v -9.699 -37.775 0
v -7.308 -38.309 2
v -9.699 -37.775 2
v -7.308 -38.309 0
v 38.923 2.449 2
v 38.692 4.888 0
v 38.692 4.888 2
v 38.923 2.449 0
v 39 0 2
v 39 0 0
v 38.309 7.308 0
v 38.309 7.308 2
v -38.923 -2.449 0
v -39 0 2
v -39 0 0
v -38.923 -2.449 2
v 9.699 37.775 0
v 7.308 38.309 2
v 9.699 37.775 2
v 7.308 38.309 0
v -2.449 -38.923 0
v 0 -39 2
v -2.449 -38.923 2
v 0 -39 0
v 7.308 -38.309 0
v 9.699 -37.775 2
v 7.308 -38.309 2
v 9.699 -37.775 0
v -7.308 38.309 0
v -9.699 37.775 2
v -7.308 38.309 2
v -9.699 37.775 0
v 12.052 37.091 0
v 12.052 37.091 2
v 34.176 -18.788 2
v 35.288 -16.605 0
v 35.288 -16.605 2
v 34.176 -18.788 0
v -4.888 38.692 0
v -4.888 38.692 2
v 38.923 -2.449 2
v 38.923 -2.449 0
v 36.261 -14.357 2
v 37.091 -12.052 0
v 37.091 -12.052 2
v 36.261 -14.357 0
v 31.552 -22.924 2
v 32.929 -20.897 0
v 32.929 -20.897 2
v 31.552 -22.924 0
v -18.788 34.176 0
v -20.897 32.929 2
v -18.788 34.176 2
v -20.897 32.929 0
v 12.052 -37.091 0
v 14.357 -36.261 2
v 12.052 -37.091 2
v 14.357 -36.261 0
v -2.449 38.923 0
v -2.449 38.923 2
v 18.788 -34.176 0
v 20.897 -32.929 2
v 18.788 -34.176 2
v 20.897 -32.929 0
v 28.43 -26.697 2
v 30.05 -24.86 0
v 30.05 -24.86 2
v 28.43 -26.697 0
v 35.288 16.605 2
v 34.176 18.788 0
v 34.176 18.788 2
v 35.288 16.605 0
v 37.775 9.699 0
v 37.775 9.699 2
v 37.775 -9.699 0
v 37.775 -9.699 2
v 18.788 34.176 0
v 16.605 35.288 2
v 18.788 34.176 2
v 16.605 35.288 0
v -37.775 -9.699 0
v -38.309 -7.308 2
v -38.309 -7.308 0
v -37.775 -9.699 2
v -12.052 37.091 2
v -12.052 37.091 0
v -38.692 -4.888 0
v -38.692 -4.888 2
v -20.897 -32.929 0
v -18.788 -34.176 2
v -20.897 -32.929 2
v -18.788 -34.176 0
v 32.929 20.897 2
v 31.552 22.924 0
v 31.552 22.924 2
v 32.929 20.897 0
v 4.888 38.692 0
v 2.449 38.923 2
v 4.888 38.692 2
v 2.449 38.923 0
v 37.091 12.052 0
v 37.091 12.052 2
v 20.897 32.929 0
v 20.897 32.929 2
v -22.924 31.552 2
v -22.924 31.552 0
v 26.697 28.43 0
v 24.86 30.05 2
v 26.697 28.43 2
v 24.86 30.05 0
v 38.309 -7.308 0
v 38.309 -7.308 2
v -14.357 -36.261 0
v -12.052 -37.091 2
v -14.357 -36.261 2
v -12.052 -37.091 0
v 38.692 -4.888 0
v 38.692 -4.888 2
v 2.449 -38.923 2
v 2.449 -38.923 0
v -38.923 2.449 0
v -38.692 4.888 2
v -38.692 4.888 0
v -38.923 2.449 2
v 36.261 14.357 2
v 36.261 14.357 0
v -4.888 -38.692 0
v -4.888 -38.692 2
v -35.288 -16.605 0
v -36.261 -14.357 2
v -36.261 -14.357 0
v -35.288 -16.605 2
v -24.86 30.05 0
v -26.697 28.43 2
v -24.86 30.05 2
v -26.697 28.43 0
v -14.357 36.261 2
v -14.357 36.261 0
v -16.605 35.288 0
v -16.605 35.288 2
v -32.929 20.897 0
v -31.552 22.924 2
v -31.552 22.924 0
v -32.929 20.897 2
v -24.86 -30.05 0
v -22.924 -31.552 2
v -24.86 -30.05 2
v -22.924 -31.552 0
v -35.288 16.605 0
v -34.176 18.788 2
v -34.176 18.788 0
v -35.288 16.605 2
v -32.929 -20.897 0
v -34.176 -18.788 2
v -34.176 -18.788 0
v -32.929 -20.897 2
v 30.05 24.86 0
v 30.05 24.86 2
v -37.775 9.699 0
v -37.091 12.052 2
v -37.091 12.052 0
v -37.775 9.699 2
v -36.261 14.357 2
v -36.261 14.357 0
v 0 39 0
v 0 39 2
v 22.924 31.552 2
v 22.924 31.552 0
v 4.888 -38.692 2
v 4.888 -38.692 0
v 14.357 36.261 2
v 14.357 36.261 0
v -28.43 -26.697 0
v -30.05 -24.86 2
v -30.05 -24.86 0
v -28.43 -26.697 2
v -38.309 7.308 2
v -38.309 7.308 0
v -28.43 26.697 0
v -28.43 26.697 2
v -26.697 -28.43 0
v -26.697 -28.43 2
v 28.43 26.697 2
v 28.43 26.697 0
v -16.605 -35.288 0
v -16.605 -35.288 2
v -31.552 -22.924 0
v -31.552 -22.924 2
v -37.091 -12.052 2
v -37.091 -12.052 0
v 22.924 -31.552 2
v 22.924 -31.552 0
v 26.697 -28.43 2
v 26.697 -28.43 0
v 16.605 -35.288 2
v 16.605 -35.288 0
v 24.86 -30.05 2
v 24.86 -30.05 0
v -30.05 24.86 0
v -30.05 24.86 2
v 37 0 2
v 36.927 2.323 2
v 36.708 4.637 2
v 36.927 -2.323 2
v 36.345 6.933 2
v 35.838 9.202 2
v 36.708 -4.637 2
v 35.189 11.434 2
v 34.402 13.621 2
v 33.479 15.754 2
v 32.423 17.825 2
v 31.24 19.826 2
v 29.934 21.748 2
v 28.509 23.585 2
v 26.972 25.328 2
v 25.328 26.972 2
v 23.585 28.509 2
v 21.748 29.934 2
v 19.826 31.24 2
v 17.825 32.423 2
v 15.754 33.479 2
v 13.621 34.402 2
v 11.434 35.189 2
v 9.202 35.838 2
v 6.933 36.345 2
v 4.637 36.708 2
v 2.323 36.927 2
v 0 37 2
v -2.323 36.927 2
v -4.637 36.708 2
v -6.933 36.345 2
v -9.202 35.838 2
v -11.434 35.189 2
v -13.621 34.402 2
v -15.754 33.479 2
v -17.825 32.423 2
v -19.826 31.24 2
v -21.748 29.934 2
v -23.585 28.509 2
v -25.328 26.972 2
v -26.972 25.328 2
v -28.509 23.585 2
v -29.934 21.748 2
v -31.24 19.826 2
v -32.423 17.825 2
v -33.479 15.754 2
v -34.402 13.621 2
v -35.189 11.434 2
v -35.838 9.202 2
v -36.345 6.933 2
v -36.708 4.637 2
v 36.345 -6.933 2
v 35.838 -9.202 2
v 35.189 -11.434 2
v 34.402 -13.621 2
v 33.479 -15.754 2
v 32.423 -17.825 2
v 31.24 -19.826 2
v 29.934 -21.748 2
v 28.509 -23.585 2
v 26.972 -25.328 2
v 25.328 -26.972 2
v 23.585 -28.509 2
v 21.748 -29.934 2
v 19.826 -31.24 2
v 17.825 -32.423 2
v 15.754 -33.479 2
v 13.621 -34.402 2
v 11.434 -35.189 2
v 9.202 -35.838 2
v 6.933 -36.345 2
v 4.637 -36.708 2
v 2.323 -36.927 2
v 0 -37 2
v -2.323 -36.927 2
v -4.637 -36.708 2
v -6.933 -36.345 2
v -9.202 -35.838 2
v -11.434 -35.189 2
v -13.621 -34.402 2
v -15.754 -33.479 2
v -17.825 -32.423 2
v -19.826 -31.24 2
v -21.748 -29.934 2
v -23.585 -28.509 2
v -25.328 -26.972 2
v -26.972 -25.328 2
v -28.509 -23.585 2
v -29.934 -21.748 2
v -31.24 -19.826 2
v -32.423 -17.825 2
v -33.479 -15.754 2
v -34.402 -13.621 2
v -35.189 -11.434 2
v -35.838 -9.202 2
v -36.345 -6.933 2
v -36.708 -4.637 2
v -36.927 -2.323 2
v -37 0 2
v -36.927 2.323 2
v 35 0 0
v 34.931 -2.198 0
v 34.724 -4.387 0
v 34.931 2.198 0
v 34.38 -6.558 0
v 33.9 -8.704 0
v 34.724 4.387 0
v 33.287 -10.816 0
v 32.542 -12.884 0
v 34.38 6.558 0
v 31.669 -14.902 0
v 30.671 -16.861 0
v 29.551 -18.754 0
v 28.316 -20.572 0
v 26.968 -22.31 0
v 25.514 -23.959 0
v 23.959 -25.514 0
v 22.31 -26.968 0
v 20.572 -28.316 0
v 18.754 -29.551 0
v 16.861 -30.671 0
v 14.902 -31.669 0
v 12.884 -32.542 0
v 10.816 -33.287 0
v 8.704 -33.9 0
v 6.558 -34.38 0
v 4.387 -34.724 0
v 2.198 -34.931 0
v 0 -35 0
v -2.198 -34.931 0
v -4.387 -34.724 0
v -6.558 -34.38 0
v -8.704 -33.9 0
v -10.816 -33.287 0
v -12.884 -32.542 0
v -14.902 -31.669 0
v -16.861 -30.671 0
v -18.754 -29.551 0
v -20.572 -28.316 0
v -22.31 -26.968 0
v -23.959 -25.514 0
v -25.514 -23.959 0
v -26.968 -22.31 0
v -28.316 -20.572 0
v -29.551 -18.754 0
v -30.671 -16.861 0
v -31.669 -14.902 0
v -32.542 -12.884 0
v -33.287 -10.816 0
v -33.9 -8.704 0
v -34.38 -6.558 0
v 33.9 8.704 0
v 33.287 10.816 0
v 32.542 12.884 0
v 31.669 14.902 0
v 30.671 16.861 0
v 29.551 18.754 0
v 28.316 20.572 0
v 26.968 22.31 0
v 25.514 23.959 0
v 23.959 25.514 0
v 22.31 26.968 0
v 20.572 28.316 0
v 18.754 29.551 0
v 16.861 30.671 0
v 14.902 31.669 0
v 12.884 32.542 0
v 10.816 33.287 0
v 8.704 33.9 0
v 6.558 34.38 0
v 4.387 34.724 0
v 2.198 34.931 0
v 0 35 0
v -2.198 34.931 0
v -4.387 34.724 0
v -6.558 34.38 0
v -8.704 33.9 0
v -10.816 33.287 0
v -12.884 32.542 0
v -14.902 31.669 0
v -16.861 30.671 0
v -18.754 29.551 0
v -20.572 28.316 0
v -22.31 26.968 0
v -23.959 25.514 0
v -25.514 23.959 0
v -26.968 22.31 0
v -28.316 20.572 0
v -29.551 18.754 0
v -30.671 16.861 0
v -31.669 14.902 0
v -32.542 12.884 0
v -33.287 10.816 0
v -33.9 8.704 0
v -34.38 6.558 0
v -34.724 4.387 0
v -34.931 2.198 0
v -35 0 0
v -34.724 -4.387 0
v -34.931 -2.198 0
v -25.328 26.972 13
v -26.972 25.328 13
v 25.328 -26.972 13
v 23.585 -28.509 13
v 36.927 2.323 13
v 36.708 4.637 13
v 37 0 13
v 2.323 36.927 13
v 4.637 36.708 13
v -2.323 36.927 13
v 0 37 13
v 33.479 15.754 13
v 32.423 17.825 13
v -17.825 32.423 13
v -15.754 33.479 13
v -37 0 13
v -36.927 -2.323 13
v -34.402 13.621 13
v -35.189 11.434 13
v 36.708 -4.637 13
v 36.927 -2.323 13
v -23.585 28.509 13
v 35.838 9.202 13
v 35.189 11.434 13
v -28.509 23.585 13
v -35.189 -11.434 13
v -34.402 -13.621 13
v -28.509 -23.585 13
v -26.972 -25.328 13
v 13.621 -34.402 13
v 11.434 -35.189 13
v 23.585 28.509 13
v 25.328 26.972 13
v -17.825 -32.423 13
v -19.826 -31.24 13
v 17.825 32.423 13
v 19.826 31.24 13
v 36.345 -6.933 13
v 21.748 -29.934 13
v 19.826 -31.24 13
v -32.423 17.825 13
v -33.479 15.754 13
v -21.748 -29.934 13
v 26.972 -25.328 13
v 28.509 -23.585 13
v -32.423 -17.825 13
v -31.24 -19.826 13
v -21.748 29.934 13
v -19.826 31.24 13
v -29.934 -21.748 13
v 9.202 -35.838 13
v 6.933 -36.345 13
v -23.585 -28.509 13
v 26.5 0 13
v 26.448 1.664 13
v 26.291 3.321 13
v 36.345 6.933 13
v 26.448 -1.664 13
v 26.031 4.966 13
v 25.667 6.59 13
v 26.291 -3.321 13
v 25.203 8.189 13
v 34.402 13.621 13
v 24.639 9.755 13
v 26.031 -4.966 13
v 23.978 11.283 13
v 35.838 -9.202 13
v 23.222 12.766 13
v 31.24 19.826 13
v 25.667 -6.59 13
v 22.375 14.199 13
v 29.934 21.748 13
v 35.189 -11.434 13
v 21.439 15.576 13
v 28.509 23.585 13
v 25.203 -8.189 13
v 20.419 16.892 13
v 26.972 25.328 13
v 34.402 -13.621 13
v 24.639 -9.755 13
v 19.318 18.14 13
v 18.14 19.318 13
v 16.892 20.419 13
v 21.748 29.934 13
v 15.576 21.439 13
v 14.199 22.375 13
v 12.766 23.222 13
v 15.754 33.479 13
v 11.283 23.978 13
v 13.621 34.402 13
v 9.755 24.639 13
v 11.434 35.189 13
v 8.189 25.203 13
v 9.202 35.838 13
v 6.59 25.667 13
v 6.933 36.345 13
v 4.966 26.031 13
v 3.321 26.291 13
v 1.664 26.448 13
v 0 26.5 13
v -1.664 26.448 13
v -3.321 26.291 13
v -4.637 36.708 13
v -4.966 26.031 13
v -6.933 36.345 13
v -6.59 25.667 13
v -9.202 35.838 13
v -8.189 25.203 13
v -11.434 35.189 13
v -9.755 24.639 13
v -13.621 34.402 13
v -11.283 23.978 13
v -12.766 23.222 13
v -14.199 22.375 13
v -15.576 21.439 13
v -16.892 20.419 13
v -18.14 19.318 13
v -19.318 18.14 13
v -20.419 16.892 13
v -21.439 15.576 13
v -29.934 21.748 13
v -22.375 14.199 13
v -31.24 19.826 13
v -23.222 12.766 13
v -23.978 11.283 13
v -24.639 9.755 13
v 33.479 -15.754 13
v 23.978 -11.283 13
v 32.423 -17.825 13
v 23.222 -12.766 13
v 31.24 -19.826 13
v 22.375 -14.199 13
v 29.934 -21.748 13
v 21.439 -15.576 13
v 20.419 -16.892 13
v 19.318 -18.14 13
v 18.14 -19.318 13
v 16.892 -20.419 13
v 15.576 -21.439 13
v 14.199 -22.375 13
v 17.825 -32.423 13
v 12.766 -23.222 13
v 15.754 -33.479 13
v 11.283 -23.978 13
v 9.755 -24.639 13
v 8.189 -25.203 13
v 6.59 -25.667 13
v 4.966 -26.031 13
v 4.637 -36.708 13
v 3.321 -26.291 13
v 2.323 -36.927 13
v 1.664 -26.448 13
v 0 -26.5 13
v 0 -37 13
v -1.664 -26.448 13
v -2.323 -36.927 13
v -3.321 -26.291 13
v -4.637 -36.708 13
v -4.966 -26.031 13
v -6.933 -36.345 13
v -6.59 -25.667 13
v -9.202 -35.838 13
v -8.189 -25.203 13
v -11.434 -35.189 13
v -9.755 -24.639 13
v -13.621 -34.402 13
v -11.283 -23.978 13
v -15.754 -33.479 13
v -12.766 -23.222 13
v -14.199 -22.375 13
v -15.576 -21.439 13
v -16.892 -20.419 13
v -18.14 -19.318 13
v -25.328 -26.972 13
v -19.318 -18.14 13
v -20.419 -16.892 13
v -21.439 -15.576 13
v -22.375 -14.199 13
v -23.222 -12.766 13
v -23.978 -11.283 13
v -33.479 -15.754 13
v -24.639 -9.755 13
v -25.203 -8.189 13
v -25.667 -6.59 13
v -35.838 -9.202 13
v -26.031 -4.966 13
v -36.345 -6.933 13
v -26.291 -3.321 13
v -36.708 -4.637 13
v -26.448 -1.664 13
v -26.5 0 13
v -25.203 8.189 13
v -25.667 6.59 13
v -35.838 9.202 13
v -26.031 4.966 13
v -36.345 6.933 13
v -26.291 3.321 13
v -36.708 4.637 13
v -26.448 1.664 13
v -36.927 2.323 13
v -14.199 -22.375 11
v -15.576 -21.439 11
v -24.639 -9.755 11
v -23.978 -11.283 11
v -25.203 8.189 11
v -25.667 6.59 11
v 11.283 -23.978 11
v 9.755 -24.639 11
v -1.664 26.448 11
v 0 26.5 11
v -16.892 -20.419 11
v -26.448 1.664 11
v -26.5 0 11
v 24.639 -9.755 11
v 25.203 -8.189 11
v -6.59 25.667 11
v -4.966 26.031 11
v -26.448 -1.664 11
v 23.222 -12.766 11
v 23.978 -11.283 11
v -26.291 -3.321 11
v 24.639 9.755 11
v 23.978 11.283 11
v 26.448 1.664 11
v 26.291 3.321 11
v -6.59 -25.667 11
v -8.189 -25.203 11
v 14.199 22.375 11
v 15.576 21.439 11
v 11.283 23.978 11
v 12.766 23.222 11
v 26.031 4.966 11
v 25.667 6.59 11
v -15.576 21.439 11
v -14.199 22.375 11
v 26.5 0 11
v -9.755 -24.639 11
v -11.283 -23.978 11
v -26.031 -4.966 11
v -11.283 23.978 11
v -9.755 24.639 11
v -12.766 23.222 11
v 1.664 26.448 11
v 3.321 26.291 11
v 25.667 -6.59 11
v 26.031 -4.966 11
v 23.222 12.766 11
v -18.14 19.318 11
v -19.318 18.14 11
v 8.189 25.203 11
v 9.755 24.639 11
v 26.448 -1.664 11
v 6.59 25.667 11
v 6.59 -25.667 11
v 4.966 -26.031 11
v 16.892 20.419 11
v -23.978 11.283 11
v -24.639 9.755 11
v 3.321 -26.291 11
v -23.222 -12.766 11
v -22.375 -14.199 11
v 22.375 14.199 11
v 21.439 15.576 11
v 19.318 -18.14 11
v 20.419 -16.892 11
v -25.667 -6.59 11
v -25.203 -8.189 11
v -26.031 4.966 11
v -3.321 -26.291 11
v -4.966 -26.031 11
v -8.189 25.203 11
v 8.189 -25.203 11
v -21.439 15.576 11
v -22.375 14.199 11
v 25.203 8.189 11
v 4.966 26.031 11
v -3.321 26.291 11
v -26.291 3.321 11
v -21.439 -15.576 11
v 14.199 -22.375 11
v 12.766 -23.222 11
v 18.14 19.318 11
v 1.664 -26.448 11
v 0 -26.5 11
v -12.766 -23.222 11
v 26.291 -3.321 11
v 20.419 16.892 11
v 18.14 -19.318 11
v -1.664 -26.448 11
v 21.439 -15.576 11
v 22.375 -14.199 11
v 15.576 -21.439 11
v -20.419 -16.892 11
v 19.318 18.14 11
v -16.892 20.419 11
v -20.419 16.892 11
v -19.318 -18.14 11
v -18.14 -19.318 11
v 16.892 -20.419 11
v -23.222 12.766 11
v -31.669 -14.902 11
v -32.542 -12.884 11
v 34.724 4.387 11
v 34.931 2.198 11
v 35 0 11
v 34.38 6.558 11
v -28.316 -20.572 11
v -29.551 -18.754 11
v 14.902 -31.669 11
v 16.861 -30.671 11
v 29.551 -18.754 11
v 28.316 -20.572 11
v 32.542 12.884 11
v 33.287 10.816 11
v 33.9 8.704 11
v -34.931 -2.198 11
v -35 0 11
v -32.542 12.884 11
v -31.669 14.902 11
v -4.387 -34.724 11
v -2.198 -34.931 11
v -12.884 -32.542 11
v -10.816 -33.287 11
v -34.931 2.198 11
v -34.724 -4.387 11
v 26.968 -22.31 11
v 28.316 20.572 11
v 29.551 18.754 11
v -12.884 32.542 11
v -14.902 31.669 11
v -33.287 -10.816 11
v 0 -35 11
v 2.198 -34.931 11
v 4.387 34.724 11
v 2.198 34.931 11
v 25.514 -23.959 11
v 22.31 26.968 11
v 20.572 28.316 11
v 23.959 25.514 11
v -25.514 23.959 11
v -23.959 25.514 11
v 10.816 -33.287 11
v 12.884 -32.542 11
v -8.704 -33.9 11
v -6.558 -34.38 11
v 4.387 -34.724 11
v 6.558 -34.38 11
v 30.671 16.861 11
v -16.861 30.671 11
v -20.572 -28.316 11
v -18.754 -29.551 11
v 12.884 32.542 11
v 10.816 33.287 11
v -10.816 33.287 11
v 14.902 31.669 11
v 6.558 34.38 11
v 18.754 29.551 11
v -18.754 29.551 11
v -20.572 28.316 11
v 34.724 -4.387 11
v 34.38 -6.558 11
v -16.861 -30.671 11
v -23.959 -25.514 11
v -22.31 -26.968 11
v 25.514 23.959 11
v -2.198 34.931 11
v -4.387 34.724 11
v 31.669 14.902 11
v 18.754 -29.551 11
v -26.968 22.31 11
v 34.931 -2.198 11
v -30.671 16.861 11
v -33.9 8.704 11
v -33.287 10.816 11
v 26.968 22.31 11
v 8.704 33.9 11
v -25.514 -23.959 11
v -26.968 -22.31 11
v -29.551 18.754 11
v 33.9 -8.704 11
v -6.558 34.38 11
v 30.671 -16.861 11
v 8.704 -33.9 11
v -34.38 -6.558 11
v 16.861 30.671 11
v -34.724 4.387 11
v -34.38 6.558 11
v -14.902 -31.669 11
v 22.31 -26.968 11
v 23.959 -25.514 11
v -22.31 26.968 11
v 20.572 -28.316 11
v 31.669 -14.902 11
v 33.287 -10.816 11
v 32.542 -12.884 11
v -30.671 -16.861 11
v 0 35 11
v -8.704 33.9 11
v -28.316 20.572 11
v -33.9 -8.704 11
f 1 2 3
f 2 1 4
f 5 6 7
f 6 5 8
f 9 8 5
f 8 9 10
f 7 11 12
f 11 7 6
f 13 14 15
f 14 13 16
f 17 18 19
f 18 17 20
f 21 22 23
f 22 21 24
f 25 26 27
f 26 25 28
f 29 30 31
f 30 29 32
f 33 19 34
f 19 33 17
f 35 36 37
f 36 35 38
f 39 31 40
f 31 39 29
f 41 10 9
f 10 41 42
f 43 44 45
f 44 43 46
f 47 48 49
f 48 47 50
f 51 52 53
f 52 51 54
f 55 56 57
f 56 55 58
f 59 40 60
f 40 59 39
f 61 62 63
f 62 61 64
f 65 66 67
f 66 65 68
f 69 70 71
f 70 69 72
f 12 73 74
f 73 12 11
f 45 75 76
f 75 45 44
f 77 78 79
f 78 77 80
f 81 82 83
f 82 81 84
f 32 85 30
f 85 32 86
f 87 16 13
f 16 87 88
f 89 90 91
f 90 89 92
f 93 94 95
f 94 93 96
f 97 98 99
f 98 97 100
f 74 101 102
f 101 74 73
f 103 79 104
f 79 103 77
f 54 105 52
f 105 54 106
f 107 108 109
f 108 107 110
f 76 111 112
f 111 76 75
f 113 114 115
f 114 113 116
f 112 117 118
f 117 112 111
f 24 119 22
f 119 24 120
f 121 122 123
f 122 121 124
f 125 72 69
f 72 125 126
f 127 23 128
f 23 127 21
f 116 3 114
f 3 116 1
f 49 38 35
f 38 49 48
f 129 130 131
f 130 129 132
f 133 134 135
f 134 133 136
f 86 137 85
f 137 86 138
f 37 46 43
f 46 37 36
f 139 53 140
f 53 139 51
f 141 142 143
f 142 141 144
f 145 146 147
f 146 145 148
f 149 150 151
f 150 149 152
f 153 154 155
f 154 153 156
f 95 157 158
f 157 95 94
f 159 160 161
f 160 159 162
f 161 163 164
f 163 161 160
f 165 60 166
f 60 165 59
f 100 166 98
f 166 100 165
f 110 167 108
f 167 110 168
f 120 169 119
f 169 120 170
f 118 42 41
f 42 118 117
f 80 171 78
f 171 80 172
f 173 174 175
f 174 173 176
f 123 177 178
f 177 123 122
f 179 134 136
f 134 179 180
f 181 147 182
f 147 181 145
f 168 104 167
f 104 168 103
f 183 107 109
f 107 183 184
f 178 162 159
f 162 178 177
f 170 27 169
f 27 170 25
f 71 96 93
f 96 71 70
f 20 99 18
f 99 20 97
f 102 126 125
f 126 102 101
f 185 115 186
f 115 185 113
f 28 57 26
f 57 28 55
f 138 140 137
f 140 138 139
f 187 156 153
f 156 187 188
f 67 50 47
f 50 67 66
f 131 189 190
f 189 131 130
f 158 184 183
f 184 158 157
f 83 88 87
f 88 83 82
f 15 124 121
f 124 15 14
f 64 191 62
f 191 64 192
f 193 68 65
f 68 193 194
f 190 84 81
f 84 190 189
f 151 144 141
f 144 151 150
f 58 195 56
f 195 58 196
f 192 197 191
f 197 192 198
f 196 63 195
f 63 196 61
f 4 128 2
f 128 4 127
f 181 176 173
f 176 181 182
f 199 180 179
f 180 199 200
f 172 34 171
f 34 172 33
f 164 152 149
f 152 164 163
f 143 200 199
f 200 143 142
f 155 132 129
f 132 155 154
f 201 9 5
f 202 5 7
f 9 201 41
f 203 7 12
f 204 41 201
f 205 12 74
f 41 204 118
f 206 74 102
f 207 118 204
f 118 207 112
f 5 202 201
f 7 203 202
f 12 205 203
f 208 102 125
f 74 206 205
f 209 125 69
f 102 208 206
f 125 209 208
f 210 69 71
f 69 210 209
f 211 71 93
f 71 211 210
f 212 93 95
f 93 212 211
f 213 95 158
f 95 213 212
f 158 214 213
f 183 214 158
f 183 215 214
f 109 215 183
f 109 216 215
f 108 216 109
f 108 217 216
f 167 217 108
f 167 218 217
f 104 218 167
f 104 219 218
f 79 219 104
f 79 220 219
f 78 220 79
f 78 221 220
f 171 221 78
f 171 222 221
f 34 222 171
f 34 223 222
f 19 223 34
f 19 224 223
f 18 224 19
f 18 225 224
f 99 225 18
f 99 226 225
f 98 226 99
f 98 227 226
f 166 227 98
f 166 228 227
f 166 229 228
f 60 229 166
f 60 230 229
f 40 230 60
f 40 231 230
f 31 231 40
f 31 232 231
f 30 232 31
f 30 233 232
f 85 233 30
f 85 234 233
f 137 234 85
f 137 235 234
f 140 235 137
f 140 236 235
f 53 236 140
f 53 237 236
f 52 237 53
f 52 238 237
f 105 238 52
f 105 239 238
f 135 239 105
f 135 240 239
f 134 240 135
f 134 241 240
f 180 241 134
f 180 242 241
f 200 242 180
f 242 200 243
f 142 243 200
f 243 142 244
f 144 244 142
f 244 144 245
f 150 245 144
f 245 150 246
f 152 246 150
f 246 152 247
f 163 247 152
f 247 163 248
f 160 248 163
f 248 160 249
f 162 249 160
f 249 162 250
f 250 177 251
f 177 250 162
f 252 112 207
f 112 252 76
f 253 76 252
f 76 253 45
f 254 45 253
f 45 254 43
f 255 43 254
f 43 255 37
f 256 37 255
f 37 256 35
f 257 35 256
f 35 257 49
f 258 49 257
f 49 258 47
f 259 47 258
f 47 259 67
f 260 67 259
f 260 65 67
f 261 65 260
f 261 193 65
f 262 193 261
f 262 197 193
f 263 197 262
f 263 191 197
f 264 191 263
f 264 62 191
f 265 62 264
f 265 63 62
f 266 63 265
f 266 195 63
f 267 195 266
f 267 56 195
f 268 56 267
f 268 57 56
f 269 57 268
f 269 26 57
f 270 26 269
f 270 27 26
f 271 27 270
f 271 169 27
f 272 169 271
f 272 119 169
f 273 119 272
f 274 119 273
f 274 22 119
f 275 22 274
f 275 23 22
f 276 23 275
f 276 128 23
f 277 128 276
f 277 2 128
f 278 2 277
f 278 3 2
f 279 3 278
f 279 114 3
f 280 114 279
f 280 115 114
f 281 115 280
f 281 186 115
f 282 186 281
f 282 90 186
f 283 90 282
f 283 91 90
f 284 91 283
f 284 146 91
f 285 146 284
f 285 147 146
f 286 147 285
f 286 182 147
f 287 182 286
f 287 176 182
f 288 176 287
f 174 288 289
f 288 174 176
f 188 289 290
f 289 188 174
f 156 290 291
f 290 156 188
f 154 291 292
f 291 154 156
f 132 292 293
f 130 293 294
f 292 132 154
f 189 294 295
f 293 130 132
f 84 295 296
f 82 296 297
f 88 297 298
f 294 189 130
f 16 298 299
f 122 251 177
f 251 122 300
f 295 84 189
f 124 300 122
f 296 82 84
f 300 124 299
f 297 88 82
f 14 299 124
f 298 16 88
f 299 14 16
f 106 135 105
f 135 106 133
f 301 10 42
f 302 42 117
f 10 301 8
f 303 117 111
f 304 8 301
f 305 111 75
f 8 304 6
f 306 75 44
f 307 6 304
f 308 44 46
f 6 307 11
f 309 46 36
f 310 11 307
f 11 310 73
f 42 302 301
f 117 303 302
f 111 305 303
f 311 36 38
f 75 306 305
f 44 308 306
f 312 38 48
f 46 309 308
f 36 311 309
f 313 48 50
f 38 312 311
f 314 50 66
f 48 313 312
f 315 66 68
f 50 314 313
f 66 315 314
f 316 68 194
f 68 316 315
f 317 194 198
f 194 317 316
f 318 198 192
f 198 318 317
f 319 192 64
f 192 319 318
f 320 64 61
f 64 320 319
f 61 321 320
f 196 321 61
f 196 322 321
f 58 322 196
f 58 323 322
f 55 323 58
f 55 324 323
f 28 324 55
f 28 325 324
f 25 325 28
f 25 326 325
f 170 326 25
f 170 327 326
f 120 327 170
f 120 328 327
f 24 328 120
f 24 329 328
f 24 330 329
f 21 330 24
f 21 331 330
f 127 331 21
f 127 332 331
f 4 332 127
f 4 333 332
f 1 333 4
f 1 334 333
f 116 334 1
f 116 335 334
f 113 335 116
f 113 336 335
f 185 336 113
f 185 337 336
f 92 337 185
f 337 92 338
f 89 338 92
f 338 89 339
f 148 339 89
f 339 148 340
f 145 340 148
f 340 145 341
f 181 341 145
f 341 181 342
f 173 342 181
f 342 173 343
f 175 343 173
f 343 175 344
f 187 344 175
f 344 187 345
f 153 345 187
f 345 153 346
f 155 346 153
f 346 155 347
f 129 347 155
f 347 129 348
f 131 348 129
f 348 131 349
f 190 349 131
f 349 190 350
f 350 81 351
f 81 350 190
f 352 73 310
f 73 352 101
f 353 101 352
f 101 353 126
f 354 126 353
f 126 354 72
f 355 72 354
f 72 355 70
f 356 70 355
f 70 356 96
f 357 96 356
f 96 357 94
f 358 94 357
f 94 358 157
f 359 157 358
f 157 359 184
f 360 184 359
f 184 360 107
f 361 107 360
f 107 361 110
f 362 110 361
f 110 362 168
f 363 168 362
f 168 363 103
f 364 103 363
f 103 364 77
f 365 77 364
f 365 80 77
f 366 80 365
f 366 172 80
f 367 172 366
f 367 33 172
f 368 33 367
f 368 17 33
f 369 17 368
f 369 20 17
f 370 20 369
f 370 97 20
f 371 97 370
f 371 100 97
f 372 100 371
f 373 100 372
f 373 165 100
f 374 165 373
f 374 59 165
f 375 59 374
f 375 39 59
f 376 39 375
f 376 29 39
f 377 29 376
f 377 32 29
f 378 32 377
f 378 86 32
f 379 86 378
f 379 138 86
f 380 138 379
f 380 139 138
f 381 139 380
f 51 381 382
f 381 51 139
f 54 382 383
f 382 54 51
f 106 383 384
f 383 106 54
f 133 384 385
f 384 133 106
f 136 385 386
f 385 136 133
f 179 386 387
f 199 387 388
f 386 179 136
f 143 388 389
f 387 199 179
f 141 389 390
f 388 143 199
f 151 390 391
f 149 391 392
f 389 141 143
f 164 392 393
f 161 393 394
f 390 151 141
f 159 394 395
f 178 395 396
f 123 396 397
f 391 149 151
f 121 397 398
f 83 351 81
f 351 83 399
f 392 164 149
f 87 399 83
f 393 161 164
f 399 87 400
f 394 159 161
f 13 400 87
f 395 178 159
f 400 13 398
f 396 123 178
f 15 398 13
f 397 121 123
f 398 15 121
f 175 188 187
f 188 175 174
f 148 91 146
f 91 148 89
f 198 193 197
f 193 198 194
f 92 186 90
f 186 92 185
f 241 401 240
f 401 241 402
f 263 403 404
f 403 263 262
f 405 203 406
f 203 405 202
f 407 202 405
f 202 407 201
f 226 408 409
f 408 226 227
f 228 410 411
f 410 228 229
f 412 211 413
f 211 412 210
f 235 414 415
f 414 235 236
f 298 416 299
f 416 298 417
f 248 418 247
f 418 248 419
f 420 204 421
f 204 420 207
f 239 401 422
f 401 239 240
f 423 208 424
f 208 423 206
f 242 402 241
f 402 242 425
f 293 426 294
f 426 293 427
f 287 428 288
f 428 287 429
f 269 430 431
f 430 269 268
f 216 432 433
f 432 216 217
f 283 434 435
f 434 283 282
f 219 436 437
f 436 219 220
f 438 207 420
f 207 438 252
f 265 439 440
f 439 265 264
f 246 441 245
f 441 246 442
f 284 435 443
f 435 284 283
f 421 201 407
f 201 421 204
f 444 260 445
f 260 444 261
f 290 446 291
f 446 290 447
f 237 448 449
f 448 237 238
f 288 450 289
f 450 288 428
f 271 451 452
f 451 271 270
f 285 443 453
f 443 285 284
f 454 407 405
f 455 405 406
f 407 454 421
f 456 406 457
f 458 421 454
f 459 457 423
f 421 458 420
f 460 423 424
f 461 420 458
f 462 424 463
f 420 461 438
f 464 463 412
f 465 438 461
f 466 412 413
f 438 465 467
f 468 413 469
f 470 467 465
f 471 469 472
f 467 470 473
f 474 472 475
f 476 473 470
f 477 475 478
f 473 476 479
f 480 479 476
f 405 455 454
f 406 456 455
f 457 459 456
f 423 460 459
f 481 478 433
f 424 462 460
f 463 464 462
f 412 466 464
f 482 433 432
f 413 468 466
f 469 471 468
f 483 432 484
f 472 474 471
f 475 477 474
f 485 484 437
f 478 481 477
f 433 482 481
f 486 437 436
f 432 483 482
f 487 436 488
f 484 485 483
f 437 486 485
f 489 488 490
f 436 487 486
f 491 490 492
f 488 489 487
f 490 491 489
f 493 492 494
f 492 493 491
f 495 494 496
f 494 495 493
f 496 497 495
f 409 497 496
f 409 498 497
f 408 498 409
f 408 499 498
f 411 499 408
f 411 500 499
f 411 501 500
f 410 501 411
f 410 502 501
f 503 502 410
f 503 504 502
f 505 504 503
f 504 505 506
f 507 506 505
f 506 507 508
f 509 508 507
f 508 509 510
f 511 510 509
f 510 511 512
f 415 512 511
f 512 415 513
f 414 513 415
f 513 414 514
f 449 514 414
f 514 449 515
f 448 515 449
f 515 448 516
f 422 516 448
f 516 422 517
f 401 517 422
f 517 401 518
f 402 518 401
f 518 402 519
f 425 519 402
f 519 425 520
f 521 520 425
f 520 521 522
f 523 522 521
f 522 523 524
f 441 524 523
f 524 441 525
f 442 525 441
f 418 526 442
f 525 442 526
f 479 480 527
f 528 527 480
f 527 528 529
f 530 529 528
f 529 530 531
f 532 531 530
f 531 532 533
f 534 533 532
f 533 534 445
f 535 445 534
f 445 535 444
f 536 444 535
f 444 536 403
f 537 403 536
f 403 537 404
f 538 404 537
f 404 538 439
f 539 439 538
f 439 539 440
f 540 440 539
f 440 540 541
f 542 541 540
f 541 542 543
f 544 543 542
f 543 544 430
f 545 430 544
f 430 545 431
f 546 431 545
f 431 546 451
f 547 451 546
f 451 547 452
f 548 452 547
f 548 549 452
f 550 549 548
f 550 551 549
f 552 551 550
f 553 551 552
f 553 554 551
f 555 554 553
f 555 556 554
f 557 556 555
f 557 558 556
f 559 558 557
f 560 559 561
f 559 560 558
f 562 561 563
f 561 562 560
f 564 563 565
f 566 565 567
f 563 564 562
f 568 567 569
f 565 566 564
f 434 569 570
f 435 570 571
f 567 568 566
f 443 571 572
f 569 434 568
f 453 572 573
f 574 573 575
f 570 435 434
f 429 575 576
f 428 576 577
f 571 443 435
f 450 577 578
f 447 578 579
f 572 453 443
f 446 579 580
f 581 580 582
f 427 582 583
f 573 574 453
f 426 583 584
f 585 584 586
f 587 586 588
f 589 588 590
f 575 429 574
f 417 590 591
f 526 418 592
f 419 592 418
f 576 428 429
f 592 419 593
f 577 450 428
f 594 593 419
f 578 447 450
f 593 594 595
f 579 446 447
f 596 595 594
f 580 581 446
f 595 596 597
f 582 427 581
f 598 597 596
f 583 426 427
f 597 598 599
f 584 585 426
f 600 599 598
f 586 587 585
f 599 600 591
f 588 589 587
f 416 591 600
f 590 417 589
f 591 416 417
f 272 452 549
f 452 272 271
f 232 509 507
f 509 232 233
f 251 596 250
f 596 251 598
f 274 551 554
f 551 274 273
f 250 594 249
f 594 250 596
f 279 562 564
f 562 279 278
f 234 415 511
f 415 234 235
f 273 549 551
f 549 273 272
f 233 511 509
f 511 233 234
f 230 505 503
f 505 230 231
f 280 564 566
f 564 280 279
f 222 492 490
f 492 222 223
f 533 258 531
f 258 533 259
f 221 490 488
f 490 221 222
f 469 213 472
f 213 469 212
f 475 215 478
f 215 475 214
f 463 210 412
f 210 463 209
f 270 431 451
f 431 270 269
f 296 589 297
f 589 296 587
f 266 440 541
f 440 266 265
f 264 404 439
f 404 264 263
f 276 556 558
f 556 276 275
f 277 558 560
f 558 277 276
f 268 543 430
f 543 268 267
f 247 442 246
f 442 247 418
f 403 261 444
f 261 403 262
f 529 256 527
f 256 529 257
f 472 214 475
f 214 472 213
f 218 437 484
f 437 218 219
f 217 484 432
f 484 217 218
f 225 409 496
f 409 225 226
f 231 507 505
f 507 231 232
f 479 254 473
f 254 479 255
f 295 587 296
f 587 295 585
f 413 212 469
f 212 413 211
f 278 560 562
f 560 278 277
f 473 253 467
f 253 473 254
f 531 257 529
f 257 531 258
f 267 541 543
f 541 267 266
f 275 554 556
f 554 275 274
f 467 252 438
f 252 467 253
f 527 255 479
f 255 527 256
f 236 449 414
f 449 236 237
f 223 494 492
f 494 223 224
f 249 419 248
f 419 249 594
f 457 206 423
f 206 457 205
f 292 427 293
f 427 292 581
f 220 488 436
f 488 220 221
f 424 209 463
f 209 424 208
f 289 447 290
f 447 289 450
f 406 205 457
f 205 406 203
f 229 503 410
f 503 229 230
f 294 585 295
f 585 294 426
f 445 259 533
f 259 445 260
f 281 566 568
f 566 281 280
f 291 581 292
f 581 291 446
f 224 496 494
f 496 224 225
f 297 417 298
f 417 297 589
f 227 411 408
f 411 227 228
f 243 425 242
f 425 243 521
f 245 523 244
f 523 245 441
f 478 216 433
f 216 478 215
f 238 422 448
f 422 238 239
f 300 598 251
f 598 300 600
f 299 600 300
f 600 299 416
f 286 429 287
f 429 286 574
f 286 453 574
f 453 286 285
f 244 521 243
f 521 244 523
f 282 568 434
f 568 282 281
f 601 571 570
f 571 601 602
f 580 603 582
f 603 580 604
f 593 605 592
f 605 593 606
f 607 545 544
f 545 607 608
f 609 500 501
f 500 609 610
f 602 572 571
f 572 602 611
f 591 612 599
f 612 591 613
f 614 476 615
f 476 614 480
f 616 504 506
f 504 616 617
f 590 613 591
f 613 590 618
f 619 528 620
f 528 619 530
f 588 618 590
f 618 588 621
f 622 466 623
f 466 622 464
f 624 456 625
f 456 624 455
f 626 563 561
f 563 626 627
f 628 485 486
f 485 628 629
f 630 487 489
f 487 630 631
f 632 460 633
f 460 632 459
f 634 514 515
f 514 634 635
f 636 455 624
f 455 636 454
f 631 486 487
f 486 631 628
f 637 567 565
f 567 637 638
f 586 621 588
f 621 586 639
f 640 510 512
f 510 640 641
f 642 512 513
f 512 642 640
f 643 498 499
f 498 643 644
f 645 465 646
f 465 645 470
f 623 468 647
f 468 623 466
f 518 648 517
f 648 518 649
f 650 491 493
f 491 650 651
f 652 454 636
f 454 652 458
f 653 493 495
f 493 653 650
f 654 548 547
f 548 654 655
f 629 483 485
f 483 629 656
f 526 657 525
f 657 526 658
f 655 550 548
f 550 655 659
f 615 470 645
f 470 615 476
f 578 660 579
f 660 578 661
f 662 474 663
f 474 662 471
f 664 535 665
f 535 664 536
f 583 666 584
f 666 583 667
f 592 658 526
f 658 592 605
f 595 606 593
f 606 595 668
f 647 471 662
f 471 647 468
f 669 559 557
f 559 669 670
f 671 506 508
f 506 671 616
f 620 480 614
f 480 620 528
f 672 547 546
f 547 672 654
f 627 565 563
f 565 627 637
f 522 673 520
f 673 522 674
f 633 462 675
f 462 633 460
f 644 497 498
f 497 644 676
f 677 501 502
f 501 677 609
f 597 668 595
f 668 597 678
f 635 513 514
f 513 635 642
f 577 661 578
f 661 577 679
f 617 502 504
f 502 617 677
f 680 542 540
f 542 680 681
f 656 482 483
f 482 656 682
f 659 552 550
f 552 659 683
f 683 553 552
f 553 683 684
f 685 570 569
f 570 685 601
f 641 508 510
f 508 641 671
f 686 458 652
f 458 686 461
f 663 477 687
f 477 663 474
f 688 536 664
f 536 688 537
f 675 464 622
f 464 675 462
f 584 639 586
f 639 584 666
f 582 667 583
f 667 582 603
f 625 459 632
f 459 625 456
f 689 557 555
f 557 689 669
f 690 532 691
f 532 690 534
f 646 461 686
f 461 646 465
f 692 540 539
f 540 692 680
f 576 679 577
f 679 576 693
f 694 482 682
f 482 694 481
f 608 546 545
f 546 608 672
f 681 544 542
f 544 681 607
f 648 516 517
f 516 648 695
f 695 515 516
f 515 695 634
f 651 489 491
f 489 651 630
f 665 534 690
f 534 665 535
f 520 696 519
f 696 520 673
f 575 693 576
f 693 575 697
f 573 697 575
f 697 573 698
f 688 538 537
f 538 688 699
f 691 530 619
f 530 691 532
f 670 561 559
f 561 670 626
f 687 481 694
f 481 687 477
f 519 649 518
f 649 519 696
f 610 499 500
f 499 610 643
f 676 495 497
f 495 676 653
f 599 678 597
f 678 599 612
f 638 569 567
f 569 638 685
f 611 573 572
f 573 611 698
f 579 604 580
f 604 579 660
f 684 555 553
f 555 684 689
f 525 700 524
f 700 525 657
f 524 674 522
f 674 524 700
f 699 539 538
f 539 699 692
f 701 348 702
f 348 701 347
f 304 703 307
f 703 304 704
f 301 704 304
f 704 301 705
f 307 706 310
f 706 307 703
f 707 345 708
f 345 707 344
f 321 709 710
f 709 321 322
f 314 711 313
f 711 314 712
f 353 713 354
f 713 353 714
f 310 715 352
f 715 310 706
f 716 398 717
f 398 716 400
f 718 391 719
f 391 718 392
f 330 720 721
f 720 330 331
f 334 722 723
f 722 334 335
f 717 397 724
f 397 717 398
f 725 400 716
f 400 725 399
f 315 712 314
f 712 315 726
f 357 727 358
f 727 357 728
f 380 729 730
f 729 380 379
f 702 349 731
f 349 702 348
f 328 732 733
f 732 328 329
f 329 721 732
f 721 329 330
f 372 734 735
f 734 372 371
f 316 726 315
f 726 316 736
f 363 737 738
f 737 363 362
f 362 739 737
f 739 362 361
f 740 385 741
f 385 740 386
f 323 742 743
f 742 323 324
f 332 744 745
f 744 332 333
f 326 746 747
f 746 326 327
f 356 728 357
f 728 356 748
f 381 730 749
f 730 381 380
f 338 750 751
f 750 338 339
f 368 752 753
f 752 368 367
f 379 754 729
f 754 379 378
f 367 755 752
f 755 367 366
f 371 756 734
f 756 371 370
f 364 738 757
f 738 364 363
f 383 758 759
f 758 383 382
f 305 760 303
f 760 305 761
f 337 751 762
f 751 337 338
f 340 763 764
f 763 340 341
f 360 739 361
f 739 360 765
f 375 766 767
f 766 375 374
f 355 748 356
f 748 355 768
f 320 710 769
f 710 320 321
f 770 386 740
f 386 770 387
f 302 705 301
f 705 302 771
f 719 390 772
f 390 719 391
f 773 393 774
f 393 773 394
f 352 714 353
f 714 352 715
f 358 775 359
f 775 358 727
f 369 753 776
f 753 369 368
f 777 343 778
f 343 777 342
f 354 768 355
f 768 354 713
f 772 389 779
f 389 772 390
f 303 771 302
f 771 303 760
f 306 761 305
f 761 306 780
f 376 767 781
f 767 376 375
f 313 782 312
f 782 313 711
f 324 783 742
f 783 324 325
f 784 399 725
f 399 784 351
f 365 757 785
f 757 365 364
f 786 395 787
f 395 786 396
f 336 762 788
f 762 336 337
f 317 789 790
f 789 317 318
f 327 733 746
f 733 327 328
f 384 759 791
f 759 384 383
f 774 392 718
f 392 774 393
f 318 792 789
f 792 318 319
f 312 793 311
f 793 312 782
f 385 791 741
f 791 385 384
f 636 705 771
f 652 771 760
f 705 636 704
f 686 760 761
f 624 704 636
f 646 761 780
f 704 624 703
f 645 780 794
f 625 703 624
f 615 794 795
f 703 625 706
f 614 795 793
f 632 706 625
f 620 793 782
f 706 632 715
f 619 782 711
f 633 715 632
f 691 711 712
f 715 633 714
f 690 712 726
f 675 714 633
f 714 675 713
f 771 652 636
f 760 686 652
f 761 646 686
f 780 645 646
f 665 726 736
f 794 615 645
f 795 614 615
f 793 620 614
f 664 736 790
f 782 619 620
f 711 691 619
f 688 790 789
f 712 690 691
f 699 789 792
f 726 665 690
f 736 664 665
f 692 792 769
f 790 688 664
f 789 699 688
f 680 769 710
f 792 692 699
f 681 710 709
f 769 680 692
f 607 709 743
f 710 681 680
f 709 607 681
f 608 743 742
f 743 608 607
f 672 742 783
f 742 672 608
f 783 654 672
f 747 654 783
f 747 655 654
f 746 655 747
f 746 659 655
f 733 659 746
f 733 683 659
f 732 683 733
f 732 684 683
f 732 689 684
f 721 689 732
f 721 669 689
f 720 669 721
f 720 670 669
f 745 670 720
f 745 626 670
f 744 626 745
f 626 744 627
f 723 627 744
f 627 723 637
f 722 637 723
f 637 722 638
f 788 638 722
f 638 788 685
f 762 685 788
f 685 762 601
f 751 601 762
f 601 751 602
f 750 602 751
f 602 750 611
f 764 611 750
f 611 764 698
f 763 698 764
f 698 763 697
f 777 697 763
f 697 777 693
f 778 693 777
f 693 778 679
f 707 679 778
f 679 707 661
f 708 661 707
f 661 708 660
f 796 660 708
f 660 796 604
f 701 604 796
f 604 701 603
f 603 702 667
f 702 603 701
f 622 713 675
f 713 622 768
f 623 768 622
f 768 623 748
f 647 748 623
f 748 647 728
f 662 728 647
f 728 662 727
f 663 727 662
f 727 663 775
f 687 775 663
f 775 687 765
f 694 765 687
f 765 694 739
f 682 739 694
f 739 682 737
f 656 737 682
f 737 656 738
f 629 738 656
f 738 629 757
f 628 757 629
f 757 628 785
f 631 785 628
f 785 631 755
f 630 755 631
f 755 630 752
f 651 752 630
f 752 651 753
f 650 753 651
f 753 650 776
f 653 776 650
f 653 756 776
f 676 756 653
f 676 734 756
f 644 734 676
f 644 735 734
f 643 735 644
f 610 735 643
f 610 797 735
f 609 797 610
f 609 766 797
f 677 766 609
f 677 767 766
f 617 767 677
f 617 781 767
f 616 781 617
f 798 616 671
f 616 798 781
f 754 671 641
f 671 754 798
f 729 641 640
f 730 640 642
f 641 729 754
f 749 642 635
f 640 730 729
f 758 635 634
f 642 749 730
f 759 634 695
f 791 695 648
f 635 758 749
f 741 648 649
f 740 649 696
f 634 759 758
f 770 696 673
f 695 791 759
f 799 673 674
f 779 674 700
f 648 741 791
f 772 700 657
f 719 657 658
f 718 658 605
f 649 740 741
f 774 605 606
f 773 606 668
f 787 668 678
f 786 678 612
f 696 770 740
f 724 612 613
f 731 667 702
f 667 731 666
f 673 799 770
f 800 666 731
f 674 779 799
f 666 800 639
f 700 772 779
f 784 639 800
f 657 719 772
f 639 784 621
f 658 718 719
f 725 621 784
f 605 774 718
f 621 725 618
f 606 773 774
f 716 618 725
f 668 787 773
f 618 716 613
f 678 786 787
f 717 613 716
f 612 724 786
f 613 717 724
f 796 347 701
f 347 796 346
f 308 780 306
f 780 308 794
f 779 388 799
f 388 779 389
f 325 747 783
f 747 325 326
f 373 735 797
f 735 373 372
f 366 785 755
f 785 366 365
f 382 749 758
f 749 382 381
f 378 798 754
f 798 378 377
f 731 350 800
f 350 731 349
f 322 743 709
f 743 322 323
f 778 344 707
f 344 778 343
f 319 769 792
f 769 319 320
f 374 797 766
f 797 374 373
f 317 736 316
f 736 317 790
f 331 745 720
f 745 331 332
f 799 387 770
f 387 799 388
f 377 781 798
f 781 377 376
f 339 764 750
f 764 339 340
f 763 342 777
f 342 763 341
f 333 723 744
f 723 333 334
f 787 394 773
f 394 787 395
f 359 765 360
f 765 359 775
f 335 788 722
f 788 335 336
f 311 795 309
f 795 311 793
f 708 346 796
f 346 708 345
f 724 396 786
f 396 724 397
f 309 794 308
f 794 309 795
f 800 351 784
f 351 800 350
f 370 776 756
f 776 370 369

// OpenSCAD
innerRadius=74/2;
lipHeight=2;
outerRadius=78/2;
holeRadius=53/2;
dropHeight=13;

$fn=100;

module mainBody(){
cylinder(lipHeight,outerRadius,outerRadius);
cylinder(dropHeight,innerRadius,innerRadius);
}

module tube() {
difference() {
    mainBody();
    cylinder(dropHeight,holeRadius,holeRadius);
}
}

difference() {
    tube();
    cylinder(dropHeight-2,innerRadius-2,innerRadius-2);
}
